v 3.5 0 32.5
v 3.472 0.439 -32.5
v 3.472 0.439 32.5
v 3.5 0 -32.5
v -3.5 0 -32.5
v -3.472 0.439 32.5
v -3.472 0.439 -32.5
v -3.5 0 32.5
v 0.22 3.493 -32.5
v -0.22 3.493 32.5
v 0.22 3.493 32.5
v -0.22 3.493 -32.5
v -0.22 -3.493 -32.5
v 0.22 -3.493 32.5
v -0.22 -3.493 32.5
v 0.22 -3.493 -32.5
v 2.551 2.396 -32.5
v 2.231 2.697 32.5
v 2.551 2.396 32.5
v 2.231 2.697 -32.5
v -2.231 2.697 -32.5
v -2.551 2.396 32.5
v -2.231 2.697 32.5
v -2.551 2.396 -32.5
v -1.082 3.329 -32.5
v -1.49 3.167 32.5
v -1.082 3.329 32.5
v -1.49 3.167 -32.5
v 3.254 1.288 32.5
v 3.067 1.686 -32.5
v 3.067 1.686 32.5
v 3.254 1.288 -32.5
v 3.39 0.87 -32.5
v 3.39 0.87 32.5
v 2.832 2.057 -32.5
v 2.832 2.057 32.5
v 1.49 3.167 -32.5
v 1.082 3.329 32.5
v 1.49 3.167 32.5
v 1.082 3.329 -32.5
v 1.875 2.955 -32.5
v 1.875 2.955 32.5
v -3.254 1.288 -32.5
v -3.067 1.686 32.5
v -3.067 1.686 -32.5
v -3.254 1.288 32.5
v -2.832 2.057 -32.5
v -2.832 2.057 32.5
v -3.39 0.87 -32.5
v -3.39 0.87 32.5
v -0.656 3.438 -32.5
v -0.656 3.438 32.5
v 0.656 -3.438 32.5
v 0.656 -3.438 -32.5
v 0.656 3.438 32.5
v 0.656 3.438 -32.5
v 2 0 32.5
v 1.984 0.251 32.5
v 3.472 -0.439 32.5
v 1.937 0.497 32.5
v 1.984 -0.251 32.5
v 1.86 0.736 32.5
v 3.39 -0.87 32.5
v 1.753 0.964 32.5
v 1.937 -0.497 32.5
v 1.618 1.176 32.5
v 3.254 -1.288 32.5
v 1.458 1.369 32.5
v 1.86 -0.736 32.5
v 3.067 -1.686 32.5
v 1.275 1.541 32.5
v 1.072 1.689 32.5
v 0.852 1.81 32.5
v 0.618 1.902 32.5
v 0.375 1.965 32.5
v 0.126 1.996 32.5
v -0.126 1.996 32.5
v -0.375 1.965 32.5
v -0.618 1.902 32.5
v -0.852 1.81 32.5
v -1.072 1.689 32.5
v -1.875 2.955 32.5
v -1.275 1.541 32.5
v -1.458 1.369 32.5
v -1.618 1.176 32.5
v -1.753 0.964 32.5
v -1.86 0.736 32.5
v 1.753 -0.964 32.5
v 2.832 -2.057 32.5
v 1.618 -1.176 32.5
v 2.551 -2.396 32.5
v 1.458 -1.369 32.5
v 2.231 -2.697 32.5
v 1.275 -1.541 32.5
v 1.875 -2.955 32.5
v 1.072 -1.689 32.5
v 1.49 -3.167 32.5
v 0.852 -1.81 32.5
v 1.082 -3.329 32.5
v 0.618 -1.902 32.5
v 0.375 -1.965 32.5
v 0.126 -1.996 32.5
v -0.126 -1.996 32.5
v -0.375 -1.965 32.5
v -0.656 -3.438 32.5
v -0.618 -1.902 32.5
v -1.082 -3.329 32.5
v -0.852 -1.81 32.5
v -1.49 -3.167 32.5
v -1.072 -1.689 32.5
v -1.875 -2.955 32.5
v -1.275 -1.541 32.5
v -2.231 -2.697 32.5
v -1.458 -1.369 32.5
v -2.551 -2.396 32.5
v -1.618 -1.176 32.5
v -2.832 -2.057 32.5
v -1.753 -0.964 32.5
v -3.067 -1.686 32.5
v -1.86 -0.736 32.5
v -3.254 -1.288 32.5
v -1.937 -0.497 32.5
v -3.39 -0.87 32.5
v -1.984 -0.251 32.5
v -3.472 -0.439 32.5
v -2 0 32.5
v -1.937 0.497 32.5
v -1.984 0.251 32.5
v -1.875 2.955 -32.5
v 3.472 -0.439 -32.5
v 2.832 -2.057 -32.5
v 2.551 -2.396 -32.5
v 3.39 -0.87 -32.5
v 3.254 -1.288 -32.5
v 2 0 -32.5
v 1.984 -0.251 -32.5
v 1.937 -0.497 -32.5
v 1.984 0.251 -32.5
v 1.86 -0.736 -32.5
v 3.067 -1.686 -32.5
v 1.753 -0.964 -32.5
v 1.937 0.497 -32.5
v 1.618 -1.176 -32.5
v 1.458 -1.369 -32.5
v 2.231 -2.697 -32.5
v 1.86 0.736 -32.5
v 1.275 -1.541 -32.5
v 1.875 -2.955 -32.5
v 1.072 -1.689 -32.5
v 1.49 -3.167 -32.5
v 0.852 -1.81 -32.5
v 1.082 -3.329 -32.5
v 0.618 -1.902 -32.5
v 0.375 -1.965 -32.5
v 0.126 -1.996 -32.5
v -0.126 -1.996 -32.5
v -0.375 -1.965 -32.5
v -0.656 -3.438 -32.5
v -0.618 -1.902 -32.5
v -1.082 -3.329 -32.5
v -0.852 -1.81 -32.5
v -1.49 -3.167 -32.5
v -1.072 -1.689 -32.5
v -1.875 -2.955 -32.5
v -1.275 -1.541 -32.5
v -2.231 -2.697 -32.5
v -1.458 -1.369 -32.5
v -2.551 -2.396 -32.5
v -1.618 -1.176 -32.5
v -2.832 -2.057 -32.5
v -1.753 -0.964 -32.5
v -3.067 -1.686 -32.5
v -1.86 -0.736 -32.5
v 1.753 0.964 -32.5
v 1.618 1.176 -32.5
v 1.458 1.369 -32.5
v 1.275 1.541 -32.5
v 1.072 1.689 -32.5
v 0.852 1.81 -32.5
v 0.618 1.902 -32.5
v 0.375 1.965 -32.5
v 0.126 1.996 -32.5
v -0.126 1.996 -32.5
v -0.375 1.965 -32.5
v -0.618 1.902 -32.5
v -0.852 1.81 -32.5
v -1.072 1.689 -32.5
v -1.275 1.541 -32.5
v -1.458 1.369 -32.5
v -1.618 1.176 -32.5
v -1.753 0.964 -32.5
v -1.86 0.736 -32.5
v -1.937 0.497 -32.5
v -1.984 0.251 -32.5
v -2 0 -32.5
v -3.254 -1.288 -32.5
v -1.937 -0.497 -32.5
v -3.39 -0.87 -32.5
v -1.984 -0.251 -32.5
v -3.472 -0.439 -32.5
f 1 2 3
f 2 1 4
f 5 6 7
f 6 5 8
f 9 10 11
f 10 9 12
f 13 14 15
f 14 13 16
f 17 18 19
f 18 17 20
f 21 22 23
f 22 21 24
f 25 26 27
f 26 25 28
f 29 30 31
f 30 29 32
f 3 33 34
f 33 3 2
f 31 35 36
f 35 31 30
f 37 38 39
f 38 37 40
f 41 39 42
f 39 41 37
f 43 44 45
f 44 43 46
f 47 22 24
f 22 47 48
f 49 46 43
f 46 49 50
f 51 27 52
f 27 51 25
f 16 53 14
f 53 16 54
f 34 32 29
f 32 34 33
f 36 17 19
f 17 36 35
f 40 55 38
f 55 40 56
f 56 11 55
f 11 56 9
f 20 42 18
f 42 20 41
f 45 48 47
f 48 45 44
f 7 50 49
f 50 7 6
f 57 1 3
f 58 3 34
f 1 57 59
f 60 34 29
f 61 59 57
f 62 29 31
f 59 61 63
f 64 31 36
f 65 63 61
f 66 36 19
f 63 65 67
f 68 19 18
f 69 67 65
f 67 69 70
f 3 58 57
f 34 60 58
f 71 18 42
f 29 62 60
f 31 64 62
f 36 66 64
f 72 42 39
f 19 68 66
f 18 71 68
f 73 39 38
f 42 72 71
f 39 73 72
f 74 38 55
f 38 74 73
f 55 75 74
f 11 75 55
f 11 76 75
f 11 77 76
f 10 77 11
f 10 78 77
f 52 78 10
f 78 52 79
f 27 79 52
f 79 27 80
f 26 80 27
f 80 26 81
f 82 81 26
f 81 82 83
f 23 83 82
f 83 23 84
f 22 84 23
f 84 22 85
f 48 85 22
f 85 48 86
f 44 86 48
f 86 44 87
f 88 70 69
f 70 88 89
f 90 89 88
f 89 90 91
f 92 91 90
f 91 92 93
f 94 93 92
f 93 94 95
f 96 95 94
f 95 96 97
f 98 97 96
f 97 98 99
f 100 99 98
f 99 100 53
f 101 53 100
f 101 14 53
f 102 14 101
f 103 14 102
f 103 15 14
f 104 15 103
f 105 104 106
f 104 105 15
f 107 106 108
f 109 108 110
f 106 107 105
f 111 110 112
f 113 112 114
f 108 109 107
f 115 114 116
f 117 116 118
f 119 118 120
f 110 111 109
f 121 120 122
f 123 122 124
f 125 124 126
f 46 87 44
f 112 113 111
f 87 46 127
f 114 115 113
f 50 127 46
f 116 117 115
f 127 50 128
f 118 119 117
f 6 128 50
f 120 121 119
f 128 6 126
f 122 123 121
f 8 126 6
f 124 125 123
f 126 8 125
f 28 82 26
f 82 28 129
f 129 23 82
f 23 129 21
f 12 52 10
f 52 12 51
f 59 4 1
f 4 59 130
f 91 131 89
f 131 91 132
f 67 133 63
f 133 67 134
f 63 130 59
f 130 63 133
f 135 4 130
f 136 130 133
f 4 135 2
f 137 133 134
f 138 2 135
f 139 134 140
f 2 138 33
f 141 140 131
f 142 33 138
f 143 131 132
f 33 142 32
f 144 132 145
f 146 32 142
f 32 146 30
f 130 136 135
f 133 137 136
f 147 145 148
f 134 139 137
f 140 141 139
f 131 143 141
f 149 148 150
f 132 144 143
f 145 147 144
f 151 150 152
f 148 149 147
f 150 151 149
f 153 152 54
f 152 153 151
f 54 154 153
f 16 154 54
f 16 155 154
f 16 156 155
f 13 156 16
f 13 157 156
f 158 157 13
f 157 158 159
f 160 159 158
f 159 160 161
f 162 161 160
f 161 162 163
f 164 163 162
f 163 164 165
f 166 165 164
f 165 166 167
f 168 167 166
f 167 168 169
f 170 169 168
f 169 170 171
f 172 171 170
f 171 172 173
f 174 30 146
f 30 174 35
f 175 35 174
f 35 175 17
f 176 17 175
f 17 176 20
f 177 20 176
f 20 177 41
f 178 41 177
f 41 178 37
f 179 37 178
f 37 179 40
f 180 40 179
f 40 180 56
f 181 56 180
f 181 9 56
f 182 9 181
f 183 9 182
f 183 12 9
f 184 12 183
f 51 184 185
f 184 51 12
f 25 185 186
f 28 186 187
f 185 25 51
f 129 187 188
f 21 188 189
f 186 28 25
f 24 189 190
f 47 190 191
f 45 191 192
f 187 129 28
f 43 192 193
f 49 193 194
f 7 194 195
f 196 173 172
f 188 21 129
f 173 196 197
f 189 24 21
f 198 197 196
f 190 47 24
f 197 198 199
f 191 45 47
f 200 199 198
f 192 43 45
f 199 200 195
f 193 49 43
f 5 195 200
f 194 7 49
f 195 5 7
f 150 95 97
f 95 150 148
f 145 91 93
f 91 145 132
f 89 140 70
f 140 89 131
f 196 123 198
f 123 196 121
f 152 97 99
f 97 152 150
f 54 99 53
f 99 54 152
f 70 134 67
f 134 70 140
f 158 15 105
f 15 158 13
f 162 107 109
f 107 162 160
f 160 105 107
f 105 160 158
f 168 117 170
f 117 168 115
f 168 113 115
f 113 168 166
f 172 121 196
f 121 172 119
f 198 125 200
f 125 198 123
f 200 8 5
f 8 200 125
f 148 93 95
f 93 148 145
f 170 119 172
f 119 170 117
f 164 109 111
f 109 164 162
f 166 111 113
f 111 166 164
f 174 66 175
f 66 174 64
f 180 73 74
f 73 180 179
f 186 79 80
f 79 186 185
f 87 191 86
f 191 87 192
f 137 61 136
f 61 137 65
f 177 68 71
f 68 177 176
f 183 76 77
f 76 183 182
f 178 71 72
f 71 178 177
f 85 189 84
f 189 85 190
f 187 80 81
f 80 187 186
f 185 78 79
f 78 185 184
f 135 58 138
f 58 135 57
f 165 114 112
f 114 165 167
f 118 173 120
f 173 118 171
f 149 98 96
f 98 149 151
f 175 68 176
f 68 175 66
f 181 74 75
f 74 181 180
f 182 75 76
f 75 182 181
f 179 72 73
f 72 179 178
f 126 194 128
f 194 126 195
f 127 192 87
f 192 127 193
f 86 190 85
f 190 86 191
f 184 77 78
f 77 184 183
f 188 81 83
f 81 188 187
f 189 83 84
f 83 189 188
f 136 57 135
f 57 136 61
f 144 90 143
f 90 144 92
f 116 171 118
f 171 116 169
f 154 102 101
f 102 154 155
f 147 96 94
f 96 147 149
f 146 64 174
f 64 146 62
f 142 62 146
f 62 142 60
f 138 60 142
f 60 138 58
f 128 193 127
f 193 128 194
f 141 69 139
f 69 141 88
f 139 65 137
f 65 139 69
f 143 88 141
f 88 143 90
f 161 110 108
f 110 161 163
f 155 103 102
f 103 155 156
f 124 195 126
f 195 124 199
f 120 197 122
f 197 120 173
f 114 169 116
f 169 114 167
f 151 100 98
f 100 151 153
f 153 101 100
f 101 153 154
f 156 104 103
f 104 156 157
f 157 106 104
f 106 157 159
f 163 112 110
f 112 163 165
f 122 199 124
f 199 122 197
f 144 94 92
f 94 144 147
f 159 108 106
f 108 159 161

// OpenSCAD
$fn = 50;


difference() {
	union() {
		translate(v = [0, 0, -32.5000000000]) {
			cylinder(h = 65, r = 3.5000000000);
		}
	}
	union() {
		translate(v = [0, 0, -100.0000000000]) {
			cylinder(h = 200, r = 2);
		}
	}
}
